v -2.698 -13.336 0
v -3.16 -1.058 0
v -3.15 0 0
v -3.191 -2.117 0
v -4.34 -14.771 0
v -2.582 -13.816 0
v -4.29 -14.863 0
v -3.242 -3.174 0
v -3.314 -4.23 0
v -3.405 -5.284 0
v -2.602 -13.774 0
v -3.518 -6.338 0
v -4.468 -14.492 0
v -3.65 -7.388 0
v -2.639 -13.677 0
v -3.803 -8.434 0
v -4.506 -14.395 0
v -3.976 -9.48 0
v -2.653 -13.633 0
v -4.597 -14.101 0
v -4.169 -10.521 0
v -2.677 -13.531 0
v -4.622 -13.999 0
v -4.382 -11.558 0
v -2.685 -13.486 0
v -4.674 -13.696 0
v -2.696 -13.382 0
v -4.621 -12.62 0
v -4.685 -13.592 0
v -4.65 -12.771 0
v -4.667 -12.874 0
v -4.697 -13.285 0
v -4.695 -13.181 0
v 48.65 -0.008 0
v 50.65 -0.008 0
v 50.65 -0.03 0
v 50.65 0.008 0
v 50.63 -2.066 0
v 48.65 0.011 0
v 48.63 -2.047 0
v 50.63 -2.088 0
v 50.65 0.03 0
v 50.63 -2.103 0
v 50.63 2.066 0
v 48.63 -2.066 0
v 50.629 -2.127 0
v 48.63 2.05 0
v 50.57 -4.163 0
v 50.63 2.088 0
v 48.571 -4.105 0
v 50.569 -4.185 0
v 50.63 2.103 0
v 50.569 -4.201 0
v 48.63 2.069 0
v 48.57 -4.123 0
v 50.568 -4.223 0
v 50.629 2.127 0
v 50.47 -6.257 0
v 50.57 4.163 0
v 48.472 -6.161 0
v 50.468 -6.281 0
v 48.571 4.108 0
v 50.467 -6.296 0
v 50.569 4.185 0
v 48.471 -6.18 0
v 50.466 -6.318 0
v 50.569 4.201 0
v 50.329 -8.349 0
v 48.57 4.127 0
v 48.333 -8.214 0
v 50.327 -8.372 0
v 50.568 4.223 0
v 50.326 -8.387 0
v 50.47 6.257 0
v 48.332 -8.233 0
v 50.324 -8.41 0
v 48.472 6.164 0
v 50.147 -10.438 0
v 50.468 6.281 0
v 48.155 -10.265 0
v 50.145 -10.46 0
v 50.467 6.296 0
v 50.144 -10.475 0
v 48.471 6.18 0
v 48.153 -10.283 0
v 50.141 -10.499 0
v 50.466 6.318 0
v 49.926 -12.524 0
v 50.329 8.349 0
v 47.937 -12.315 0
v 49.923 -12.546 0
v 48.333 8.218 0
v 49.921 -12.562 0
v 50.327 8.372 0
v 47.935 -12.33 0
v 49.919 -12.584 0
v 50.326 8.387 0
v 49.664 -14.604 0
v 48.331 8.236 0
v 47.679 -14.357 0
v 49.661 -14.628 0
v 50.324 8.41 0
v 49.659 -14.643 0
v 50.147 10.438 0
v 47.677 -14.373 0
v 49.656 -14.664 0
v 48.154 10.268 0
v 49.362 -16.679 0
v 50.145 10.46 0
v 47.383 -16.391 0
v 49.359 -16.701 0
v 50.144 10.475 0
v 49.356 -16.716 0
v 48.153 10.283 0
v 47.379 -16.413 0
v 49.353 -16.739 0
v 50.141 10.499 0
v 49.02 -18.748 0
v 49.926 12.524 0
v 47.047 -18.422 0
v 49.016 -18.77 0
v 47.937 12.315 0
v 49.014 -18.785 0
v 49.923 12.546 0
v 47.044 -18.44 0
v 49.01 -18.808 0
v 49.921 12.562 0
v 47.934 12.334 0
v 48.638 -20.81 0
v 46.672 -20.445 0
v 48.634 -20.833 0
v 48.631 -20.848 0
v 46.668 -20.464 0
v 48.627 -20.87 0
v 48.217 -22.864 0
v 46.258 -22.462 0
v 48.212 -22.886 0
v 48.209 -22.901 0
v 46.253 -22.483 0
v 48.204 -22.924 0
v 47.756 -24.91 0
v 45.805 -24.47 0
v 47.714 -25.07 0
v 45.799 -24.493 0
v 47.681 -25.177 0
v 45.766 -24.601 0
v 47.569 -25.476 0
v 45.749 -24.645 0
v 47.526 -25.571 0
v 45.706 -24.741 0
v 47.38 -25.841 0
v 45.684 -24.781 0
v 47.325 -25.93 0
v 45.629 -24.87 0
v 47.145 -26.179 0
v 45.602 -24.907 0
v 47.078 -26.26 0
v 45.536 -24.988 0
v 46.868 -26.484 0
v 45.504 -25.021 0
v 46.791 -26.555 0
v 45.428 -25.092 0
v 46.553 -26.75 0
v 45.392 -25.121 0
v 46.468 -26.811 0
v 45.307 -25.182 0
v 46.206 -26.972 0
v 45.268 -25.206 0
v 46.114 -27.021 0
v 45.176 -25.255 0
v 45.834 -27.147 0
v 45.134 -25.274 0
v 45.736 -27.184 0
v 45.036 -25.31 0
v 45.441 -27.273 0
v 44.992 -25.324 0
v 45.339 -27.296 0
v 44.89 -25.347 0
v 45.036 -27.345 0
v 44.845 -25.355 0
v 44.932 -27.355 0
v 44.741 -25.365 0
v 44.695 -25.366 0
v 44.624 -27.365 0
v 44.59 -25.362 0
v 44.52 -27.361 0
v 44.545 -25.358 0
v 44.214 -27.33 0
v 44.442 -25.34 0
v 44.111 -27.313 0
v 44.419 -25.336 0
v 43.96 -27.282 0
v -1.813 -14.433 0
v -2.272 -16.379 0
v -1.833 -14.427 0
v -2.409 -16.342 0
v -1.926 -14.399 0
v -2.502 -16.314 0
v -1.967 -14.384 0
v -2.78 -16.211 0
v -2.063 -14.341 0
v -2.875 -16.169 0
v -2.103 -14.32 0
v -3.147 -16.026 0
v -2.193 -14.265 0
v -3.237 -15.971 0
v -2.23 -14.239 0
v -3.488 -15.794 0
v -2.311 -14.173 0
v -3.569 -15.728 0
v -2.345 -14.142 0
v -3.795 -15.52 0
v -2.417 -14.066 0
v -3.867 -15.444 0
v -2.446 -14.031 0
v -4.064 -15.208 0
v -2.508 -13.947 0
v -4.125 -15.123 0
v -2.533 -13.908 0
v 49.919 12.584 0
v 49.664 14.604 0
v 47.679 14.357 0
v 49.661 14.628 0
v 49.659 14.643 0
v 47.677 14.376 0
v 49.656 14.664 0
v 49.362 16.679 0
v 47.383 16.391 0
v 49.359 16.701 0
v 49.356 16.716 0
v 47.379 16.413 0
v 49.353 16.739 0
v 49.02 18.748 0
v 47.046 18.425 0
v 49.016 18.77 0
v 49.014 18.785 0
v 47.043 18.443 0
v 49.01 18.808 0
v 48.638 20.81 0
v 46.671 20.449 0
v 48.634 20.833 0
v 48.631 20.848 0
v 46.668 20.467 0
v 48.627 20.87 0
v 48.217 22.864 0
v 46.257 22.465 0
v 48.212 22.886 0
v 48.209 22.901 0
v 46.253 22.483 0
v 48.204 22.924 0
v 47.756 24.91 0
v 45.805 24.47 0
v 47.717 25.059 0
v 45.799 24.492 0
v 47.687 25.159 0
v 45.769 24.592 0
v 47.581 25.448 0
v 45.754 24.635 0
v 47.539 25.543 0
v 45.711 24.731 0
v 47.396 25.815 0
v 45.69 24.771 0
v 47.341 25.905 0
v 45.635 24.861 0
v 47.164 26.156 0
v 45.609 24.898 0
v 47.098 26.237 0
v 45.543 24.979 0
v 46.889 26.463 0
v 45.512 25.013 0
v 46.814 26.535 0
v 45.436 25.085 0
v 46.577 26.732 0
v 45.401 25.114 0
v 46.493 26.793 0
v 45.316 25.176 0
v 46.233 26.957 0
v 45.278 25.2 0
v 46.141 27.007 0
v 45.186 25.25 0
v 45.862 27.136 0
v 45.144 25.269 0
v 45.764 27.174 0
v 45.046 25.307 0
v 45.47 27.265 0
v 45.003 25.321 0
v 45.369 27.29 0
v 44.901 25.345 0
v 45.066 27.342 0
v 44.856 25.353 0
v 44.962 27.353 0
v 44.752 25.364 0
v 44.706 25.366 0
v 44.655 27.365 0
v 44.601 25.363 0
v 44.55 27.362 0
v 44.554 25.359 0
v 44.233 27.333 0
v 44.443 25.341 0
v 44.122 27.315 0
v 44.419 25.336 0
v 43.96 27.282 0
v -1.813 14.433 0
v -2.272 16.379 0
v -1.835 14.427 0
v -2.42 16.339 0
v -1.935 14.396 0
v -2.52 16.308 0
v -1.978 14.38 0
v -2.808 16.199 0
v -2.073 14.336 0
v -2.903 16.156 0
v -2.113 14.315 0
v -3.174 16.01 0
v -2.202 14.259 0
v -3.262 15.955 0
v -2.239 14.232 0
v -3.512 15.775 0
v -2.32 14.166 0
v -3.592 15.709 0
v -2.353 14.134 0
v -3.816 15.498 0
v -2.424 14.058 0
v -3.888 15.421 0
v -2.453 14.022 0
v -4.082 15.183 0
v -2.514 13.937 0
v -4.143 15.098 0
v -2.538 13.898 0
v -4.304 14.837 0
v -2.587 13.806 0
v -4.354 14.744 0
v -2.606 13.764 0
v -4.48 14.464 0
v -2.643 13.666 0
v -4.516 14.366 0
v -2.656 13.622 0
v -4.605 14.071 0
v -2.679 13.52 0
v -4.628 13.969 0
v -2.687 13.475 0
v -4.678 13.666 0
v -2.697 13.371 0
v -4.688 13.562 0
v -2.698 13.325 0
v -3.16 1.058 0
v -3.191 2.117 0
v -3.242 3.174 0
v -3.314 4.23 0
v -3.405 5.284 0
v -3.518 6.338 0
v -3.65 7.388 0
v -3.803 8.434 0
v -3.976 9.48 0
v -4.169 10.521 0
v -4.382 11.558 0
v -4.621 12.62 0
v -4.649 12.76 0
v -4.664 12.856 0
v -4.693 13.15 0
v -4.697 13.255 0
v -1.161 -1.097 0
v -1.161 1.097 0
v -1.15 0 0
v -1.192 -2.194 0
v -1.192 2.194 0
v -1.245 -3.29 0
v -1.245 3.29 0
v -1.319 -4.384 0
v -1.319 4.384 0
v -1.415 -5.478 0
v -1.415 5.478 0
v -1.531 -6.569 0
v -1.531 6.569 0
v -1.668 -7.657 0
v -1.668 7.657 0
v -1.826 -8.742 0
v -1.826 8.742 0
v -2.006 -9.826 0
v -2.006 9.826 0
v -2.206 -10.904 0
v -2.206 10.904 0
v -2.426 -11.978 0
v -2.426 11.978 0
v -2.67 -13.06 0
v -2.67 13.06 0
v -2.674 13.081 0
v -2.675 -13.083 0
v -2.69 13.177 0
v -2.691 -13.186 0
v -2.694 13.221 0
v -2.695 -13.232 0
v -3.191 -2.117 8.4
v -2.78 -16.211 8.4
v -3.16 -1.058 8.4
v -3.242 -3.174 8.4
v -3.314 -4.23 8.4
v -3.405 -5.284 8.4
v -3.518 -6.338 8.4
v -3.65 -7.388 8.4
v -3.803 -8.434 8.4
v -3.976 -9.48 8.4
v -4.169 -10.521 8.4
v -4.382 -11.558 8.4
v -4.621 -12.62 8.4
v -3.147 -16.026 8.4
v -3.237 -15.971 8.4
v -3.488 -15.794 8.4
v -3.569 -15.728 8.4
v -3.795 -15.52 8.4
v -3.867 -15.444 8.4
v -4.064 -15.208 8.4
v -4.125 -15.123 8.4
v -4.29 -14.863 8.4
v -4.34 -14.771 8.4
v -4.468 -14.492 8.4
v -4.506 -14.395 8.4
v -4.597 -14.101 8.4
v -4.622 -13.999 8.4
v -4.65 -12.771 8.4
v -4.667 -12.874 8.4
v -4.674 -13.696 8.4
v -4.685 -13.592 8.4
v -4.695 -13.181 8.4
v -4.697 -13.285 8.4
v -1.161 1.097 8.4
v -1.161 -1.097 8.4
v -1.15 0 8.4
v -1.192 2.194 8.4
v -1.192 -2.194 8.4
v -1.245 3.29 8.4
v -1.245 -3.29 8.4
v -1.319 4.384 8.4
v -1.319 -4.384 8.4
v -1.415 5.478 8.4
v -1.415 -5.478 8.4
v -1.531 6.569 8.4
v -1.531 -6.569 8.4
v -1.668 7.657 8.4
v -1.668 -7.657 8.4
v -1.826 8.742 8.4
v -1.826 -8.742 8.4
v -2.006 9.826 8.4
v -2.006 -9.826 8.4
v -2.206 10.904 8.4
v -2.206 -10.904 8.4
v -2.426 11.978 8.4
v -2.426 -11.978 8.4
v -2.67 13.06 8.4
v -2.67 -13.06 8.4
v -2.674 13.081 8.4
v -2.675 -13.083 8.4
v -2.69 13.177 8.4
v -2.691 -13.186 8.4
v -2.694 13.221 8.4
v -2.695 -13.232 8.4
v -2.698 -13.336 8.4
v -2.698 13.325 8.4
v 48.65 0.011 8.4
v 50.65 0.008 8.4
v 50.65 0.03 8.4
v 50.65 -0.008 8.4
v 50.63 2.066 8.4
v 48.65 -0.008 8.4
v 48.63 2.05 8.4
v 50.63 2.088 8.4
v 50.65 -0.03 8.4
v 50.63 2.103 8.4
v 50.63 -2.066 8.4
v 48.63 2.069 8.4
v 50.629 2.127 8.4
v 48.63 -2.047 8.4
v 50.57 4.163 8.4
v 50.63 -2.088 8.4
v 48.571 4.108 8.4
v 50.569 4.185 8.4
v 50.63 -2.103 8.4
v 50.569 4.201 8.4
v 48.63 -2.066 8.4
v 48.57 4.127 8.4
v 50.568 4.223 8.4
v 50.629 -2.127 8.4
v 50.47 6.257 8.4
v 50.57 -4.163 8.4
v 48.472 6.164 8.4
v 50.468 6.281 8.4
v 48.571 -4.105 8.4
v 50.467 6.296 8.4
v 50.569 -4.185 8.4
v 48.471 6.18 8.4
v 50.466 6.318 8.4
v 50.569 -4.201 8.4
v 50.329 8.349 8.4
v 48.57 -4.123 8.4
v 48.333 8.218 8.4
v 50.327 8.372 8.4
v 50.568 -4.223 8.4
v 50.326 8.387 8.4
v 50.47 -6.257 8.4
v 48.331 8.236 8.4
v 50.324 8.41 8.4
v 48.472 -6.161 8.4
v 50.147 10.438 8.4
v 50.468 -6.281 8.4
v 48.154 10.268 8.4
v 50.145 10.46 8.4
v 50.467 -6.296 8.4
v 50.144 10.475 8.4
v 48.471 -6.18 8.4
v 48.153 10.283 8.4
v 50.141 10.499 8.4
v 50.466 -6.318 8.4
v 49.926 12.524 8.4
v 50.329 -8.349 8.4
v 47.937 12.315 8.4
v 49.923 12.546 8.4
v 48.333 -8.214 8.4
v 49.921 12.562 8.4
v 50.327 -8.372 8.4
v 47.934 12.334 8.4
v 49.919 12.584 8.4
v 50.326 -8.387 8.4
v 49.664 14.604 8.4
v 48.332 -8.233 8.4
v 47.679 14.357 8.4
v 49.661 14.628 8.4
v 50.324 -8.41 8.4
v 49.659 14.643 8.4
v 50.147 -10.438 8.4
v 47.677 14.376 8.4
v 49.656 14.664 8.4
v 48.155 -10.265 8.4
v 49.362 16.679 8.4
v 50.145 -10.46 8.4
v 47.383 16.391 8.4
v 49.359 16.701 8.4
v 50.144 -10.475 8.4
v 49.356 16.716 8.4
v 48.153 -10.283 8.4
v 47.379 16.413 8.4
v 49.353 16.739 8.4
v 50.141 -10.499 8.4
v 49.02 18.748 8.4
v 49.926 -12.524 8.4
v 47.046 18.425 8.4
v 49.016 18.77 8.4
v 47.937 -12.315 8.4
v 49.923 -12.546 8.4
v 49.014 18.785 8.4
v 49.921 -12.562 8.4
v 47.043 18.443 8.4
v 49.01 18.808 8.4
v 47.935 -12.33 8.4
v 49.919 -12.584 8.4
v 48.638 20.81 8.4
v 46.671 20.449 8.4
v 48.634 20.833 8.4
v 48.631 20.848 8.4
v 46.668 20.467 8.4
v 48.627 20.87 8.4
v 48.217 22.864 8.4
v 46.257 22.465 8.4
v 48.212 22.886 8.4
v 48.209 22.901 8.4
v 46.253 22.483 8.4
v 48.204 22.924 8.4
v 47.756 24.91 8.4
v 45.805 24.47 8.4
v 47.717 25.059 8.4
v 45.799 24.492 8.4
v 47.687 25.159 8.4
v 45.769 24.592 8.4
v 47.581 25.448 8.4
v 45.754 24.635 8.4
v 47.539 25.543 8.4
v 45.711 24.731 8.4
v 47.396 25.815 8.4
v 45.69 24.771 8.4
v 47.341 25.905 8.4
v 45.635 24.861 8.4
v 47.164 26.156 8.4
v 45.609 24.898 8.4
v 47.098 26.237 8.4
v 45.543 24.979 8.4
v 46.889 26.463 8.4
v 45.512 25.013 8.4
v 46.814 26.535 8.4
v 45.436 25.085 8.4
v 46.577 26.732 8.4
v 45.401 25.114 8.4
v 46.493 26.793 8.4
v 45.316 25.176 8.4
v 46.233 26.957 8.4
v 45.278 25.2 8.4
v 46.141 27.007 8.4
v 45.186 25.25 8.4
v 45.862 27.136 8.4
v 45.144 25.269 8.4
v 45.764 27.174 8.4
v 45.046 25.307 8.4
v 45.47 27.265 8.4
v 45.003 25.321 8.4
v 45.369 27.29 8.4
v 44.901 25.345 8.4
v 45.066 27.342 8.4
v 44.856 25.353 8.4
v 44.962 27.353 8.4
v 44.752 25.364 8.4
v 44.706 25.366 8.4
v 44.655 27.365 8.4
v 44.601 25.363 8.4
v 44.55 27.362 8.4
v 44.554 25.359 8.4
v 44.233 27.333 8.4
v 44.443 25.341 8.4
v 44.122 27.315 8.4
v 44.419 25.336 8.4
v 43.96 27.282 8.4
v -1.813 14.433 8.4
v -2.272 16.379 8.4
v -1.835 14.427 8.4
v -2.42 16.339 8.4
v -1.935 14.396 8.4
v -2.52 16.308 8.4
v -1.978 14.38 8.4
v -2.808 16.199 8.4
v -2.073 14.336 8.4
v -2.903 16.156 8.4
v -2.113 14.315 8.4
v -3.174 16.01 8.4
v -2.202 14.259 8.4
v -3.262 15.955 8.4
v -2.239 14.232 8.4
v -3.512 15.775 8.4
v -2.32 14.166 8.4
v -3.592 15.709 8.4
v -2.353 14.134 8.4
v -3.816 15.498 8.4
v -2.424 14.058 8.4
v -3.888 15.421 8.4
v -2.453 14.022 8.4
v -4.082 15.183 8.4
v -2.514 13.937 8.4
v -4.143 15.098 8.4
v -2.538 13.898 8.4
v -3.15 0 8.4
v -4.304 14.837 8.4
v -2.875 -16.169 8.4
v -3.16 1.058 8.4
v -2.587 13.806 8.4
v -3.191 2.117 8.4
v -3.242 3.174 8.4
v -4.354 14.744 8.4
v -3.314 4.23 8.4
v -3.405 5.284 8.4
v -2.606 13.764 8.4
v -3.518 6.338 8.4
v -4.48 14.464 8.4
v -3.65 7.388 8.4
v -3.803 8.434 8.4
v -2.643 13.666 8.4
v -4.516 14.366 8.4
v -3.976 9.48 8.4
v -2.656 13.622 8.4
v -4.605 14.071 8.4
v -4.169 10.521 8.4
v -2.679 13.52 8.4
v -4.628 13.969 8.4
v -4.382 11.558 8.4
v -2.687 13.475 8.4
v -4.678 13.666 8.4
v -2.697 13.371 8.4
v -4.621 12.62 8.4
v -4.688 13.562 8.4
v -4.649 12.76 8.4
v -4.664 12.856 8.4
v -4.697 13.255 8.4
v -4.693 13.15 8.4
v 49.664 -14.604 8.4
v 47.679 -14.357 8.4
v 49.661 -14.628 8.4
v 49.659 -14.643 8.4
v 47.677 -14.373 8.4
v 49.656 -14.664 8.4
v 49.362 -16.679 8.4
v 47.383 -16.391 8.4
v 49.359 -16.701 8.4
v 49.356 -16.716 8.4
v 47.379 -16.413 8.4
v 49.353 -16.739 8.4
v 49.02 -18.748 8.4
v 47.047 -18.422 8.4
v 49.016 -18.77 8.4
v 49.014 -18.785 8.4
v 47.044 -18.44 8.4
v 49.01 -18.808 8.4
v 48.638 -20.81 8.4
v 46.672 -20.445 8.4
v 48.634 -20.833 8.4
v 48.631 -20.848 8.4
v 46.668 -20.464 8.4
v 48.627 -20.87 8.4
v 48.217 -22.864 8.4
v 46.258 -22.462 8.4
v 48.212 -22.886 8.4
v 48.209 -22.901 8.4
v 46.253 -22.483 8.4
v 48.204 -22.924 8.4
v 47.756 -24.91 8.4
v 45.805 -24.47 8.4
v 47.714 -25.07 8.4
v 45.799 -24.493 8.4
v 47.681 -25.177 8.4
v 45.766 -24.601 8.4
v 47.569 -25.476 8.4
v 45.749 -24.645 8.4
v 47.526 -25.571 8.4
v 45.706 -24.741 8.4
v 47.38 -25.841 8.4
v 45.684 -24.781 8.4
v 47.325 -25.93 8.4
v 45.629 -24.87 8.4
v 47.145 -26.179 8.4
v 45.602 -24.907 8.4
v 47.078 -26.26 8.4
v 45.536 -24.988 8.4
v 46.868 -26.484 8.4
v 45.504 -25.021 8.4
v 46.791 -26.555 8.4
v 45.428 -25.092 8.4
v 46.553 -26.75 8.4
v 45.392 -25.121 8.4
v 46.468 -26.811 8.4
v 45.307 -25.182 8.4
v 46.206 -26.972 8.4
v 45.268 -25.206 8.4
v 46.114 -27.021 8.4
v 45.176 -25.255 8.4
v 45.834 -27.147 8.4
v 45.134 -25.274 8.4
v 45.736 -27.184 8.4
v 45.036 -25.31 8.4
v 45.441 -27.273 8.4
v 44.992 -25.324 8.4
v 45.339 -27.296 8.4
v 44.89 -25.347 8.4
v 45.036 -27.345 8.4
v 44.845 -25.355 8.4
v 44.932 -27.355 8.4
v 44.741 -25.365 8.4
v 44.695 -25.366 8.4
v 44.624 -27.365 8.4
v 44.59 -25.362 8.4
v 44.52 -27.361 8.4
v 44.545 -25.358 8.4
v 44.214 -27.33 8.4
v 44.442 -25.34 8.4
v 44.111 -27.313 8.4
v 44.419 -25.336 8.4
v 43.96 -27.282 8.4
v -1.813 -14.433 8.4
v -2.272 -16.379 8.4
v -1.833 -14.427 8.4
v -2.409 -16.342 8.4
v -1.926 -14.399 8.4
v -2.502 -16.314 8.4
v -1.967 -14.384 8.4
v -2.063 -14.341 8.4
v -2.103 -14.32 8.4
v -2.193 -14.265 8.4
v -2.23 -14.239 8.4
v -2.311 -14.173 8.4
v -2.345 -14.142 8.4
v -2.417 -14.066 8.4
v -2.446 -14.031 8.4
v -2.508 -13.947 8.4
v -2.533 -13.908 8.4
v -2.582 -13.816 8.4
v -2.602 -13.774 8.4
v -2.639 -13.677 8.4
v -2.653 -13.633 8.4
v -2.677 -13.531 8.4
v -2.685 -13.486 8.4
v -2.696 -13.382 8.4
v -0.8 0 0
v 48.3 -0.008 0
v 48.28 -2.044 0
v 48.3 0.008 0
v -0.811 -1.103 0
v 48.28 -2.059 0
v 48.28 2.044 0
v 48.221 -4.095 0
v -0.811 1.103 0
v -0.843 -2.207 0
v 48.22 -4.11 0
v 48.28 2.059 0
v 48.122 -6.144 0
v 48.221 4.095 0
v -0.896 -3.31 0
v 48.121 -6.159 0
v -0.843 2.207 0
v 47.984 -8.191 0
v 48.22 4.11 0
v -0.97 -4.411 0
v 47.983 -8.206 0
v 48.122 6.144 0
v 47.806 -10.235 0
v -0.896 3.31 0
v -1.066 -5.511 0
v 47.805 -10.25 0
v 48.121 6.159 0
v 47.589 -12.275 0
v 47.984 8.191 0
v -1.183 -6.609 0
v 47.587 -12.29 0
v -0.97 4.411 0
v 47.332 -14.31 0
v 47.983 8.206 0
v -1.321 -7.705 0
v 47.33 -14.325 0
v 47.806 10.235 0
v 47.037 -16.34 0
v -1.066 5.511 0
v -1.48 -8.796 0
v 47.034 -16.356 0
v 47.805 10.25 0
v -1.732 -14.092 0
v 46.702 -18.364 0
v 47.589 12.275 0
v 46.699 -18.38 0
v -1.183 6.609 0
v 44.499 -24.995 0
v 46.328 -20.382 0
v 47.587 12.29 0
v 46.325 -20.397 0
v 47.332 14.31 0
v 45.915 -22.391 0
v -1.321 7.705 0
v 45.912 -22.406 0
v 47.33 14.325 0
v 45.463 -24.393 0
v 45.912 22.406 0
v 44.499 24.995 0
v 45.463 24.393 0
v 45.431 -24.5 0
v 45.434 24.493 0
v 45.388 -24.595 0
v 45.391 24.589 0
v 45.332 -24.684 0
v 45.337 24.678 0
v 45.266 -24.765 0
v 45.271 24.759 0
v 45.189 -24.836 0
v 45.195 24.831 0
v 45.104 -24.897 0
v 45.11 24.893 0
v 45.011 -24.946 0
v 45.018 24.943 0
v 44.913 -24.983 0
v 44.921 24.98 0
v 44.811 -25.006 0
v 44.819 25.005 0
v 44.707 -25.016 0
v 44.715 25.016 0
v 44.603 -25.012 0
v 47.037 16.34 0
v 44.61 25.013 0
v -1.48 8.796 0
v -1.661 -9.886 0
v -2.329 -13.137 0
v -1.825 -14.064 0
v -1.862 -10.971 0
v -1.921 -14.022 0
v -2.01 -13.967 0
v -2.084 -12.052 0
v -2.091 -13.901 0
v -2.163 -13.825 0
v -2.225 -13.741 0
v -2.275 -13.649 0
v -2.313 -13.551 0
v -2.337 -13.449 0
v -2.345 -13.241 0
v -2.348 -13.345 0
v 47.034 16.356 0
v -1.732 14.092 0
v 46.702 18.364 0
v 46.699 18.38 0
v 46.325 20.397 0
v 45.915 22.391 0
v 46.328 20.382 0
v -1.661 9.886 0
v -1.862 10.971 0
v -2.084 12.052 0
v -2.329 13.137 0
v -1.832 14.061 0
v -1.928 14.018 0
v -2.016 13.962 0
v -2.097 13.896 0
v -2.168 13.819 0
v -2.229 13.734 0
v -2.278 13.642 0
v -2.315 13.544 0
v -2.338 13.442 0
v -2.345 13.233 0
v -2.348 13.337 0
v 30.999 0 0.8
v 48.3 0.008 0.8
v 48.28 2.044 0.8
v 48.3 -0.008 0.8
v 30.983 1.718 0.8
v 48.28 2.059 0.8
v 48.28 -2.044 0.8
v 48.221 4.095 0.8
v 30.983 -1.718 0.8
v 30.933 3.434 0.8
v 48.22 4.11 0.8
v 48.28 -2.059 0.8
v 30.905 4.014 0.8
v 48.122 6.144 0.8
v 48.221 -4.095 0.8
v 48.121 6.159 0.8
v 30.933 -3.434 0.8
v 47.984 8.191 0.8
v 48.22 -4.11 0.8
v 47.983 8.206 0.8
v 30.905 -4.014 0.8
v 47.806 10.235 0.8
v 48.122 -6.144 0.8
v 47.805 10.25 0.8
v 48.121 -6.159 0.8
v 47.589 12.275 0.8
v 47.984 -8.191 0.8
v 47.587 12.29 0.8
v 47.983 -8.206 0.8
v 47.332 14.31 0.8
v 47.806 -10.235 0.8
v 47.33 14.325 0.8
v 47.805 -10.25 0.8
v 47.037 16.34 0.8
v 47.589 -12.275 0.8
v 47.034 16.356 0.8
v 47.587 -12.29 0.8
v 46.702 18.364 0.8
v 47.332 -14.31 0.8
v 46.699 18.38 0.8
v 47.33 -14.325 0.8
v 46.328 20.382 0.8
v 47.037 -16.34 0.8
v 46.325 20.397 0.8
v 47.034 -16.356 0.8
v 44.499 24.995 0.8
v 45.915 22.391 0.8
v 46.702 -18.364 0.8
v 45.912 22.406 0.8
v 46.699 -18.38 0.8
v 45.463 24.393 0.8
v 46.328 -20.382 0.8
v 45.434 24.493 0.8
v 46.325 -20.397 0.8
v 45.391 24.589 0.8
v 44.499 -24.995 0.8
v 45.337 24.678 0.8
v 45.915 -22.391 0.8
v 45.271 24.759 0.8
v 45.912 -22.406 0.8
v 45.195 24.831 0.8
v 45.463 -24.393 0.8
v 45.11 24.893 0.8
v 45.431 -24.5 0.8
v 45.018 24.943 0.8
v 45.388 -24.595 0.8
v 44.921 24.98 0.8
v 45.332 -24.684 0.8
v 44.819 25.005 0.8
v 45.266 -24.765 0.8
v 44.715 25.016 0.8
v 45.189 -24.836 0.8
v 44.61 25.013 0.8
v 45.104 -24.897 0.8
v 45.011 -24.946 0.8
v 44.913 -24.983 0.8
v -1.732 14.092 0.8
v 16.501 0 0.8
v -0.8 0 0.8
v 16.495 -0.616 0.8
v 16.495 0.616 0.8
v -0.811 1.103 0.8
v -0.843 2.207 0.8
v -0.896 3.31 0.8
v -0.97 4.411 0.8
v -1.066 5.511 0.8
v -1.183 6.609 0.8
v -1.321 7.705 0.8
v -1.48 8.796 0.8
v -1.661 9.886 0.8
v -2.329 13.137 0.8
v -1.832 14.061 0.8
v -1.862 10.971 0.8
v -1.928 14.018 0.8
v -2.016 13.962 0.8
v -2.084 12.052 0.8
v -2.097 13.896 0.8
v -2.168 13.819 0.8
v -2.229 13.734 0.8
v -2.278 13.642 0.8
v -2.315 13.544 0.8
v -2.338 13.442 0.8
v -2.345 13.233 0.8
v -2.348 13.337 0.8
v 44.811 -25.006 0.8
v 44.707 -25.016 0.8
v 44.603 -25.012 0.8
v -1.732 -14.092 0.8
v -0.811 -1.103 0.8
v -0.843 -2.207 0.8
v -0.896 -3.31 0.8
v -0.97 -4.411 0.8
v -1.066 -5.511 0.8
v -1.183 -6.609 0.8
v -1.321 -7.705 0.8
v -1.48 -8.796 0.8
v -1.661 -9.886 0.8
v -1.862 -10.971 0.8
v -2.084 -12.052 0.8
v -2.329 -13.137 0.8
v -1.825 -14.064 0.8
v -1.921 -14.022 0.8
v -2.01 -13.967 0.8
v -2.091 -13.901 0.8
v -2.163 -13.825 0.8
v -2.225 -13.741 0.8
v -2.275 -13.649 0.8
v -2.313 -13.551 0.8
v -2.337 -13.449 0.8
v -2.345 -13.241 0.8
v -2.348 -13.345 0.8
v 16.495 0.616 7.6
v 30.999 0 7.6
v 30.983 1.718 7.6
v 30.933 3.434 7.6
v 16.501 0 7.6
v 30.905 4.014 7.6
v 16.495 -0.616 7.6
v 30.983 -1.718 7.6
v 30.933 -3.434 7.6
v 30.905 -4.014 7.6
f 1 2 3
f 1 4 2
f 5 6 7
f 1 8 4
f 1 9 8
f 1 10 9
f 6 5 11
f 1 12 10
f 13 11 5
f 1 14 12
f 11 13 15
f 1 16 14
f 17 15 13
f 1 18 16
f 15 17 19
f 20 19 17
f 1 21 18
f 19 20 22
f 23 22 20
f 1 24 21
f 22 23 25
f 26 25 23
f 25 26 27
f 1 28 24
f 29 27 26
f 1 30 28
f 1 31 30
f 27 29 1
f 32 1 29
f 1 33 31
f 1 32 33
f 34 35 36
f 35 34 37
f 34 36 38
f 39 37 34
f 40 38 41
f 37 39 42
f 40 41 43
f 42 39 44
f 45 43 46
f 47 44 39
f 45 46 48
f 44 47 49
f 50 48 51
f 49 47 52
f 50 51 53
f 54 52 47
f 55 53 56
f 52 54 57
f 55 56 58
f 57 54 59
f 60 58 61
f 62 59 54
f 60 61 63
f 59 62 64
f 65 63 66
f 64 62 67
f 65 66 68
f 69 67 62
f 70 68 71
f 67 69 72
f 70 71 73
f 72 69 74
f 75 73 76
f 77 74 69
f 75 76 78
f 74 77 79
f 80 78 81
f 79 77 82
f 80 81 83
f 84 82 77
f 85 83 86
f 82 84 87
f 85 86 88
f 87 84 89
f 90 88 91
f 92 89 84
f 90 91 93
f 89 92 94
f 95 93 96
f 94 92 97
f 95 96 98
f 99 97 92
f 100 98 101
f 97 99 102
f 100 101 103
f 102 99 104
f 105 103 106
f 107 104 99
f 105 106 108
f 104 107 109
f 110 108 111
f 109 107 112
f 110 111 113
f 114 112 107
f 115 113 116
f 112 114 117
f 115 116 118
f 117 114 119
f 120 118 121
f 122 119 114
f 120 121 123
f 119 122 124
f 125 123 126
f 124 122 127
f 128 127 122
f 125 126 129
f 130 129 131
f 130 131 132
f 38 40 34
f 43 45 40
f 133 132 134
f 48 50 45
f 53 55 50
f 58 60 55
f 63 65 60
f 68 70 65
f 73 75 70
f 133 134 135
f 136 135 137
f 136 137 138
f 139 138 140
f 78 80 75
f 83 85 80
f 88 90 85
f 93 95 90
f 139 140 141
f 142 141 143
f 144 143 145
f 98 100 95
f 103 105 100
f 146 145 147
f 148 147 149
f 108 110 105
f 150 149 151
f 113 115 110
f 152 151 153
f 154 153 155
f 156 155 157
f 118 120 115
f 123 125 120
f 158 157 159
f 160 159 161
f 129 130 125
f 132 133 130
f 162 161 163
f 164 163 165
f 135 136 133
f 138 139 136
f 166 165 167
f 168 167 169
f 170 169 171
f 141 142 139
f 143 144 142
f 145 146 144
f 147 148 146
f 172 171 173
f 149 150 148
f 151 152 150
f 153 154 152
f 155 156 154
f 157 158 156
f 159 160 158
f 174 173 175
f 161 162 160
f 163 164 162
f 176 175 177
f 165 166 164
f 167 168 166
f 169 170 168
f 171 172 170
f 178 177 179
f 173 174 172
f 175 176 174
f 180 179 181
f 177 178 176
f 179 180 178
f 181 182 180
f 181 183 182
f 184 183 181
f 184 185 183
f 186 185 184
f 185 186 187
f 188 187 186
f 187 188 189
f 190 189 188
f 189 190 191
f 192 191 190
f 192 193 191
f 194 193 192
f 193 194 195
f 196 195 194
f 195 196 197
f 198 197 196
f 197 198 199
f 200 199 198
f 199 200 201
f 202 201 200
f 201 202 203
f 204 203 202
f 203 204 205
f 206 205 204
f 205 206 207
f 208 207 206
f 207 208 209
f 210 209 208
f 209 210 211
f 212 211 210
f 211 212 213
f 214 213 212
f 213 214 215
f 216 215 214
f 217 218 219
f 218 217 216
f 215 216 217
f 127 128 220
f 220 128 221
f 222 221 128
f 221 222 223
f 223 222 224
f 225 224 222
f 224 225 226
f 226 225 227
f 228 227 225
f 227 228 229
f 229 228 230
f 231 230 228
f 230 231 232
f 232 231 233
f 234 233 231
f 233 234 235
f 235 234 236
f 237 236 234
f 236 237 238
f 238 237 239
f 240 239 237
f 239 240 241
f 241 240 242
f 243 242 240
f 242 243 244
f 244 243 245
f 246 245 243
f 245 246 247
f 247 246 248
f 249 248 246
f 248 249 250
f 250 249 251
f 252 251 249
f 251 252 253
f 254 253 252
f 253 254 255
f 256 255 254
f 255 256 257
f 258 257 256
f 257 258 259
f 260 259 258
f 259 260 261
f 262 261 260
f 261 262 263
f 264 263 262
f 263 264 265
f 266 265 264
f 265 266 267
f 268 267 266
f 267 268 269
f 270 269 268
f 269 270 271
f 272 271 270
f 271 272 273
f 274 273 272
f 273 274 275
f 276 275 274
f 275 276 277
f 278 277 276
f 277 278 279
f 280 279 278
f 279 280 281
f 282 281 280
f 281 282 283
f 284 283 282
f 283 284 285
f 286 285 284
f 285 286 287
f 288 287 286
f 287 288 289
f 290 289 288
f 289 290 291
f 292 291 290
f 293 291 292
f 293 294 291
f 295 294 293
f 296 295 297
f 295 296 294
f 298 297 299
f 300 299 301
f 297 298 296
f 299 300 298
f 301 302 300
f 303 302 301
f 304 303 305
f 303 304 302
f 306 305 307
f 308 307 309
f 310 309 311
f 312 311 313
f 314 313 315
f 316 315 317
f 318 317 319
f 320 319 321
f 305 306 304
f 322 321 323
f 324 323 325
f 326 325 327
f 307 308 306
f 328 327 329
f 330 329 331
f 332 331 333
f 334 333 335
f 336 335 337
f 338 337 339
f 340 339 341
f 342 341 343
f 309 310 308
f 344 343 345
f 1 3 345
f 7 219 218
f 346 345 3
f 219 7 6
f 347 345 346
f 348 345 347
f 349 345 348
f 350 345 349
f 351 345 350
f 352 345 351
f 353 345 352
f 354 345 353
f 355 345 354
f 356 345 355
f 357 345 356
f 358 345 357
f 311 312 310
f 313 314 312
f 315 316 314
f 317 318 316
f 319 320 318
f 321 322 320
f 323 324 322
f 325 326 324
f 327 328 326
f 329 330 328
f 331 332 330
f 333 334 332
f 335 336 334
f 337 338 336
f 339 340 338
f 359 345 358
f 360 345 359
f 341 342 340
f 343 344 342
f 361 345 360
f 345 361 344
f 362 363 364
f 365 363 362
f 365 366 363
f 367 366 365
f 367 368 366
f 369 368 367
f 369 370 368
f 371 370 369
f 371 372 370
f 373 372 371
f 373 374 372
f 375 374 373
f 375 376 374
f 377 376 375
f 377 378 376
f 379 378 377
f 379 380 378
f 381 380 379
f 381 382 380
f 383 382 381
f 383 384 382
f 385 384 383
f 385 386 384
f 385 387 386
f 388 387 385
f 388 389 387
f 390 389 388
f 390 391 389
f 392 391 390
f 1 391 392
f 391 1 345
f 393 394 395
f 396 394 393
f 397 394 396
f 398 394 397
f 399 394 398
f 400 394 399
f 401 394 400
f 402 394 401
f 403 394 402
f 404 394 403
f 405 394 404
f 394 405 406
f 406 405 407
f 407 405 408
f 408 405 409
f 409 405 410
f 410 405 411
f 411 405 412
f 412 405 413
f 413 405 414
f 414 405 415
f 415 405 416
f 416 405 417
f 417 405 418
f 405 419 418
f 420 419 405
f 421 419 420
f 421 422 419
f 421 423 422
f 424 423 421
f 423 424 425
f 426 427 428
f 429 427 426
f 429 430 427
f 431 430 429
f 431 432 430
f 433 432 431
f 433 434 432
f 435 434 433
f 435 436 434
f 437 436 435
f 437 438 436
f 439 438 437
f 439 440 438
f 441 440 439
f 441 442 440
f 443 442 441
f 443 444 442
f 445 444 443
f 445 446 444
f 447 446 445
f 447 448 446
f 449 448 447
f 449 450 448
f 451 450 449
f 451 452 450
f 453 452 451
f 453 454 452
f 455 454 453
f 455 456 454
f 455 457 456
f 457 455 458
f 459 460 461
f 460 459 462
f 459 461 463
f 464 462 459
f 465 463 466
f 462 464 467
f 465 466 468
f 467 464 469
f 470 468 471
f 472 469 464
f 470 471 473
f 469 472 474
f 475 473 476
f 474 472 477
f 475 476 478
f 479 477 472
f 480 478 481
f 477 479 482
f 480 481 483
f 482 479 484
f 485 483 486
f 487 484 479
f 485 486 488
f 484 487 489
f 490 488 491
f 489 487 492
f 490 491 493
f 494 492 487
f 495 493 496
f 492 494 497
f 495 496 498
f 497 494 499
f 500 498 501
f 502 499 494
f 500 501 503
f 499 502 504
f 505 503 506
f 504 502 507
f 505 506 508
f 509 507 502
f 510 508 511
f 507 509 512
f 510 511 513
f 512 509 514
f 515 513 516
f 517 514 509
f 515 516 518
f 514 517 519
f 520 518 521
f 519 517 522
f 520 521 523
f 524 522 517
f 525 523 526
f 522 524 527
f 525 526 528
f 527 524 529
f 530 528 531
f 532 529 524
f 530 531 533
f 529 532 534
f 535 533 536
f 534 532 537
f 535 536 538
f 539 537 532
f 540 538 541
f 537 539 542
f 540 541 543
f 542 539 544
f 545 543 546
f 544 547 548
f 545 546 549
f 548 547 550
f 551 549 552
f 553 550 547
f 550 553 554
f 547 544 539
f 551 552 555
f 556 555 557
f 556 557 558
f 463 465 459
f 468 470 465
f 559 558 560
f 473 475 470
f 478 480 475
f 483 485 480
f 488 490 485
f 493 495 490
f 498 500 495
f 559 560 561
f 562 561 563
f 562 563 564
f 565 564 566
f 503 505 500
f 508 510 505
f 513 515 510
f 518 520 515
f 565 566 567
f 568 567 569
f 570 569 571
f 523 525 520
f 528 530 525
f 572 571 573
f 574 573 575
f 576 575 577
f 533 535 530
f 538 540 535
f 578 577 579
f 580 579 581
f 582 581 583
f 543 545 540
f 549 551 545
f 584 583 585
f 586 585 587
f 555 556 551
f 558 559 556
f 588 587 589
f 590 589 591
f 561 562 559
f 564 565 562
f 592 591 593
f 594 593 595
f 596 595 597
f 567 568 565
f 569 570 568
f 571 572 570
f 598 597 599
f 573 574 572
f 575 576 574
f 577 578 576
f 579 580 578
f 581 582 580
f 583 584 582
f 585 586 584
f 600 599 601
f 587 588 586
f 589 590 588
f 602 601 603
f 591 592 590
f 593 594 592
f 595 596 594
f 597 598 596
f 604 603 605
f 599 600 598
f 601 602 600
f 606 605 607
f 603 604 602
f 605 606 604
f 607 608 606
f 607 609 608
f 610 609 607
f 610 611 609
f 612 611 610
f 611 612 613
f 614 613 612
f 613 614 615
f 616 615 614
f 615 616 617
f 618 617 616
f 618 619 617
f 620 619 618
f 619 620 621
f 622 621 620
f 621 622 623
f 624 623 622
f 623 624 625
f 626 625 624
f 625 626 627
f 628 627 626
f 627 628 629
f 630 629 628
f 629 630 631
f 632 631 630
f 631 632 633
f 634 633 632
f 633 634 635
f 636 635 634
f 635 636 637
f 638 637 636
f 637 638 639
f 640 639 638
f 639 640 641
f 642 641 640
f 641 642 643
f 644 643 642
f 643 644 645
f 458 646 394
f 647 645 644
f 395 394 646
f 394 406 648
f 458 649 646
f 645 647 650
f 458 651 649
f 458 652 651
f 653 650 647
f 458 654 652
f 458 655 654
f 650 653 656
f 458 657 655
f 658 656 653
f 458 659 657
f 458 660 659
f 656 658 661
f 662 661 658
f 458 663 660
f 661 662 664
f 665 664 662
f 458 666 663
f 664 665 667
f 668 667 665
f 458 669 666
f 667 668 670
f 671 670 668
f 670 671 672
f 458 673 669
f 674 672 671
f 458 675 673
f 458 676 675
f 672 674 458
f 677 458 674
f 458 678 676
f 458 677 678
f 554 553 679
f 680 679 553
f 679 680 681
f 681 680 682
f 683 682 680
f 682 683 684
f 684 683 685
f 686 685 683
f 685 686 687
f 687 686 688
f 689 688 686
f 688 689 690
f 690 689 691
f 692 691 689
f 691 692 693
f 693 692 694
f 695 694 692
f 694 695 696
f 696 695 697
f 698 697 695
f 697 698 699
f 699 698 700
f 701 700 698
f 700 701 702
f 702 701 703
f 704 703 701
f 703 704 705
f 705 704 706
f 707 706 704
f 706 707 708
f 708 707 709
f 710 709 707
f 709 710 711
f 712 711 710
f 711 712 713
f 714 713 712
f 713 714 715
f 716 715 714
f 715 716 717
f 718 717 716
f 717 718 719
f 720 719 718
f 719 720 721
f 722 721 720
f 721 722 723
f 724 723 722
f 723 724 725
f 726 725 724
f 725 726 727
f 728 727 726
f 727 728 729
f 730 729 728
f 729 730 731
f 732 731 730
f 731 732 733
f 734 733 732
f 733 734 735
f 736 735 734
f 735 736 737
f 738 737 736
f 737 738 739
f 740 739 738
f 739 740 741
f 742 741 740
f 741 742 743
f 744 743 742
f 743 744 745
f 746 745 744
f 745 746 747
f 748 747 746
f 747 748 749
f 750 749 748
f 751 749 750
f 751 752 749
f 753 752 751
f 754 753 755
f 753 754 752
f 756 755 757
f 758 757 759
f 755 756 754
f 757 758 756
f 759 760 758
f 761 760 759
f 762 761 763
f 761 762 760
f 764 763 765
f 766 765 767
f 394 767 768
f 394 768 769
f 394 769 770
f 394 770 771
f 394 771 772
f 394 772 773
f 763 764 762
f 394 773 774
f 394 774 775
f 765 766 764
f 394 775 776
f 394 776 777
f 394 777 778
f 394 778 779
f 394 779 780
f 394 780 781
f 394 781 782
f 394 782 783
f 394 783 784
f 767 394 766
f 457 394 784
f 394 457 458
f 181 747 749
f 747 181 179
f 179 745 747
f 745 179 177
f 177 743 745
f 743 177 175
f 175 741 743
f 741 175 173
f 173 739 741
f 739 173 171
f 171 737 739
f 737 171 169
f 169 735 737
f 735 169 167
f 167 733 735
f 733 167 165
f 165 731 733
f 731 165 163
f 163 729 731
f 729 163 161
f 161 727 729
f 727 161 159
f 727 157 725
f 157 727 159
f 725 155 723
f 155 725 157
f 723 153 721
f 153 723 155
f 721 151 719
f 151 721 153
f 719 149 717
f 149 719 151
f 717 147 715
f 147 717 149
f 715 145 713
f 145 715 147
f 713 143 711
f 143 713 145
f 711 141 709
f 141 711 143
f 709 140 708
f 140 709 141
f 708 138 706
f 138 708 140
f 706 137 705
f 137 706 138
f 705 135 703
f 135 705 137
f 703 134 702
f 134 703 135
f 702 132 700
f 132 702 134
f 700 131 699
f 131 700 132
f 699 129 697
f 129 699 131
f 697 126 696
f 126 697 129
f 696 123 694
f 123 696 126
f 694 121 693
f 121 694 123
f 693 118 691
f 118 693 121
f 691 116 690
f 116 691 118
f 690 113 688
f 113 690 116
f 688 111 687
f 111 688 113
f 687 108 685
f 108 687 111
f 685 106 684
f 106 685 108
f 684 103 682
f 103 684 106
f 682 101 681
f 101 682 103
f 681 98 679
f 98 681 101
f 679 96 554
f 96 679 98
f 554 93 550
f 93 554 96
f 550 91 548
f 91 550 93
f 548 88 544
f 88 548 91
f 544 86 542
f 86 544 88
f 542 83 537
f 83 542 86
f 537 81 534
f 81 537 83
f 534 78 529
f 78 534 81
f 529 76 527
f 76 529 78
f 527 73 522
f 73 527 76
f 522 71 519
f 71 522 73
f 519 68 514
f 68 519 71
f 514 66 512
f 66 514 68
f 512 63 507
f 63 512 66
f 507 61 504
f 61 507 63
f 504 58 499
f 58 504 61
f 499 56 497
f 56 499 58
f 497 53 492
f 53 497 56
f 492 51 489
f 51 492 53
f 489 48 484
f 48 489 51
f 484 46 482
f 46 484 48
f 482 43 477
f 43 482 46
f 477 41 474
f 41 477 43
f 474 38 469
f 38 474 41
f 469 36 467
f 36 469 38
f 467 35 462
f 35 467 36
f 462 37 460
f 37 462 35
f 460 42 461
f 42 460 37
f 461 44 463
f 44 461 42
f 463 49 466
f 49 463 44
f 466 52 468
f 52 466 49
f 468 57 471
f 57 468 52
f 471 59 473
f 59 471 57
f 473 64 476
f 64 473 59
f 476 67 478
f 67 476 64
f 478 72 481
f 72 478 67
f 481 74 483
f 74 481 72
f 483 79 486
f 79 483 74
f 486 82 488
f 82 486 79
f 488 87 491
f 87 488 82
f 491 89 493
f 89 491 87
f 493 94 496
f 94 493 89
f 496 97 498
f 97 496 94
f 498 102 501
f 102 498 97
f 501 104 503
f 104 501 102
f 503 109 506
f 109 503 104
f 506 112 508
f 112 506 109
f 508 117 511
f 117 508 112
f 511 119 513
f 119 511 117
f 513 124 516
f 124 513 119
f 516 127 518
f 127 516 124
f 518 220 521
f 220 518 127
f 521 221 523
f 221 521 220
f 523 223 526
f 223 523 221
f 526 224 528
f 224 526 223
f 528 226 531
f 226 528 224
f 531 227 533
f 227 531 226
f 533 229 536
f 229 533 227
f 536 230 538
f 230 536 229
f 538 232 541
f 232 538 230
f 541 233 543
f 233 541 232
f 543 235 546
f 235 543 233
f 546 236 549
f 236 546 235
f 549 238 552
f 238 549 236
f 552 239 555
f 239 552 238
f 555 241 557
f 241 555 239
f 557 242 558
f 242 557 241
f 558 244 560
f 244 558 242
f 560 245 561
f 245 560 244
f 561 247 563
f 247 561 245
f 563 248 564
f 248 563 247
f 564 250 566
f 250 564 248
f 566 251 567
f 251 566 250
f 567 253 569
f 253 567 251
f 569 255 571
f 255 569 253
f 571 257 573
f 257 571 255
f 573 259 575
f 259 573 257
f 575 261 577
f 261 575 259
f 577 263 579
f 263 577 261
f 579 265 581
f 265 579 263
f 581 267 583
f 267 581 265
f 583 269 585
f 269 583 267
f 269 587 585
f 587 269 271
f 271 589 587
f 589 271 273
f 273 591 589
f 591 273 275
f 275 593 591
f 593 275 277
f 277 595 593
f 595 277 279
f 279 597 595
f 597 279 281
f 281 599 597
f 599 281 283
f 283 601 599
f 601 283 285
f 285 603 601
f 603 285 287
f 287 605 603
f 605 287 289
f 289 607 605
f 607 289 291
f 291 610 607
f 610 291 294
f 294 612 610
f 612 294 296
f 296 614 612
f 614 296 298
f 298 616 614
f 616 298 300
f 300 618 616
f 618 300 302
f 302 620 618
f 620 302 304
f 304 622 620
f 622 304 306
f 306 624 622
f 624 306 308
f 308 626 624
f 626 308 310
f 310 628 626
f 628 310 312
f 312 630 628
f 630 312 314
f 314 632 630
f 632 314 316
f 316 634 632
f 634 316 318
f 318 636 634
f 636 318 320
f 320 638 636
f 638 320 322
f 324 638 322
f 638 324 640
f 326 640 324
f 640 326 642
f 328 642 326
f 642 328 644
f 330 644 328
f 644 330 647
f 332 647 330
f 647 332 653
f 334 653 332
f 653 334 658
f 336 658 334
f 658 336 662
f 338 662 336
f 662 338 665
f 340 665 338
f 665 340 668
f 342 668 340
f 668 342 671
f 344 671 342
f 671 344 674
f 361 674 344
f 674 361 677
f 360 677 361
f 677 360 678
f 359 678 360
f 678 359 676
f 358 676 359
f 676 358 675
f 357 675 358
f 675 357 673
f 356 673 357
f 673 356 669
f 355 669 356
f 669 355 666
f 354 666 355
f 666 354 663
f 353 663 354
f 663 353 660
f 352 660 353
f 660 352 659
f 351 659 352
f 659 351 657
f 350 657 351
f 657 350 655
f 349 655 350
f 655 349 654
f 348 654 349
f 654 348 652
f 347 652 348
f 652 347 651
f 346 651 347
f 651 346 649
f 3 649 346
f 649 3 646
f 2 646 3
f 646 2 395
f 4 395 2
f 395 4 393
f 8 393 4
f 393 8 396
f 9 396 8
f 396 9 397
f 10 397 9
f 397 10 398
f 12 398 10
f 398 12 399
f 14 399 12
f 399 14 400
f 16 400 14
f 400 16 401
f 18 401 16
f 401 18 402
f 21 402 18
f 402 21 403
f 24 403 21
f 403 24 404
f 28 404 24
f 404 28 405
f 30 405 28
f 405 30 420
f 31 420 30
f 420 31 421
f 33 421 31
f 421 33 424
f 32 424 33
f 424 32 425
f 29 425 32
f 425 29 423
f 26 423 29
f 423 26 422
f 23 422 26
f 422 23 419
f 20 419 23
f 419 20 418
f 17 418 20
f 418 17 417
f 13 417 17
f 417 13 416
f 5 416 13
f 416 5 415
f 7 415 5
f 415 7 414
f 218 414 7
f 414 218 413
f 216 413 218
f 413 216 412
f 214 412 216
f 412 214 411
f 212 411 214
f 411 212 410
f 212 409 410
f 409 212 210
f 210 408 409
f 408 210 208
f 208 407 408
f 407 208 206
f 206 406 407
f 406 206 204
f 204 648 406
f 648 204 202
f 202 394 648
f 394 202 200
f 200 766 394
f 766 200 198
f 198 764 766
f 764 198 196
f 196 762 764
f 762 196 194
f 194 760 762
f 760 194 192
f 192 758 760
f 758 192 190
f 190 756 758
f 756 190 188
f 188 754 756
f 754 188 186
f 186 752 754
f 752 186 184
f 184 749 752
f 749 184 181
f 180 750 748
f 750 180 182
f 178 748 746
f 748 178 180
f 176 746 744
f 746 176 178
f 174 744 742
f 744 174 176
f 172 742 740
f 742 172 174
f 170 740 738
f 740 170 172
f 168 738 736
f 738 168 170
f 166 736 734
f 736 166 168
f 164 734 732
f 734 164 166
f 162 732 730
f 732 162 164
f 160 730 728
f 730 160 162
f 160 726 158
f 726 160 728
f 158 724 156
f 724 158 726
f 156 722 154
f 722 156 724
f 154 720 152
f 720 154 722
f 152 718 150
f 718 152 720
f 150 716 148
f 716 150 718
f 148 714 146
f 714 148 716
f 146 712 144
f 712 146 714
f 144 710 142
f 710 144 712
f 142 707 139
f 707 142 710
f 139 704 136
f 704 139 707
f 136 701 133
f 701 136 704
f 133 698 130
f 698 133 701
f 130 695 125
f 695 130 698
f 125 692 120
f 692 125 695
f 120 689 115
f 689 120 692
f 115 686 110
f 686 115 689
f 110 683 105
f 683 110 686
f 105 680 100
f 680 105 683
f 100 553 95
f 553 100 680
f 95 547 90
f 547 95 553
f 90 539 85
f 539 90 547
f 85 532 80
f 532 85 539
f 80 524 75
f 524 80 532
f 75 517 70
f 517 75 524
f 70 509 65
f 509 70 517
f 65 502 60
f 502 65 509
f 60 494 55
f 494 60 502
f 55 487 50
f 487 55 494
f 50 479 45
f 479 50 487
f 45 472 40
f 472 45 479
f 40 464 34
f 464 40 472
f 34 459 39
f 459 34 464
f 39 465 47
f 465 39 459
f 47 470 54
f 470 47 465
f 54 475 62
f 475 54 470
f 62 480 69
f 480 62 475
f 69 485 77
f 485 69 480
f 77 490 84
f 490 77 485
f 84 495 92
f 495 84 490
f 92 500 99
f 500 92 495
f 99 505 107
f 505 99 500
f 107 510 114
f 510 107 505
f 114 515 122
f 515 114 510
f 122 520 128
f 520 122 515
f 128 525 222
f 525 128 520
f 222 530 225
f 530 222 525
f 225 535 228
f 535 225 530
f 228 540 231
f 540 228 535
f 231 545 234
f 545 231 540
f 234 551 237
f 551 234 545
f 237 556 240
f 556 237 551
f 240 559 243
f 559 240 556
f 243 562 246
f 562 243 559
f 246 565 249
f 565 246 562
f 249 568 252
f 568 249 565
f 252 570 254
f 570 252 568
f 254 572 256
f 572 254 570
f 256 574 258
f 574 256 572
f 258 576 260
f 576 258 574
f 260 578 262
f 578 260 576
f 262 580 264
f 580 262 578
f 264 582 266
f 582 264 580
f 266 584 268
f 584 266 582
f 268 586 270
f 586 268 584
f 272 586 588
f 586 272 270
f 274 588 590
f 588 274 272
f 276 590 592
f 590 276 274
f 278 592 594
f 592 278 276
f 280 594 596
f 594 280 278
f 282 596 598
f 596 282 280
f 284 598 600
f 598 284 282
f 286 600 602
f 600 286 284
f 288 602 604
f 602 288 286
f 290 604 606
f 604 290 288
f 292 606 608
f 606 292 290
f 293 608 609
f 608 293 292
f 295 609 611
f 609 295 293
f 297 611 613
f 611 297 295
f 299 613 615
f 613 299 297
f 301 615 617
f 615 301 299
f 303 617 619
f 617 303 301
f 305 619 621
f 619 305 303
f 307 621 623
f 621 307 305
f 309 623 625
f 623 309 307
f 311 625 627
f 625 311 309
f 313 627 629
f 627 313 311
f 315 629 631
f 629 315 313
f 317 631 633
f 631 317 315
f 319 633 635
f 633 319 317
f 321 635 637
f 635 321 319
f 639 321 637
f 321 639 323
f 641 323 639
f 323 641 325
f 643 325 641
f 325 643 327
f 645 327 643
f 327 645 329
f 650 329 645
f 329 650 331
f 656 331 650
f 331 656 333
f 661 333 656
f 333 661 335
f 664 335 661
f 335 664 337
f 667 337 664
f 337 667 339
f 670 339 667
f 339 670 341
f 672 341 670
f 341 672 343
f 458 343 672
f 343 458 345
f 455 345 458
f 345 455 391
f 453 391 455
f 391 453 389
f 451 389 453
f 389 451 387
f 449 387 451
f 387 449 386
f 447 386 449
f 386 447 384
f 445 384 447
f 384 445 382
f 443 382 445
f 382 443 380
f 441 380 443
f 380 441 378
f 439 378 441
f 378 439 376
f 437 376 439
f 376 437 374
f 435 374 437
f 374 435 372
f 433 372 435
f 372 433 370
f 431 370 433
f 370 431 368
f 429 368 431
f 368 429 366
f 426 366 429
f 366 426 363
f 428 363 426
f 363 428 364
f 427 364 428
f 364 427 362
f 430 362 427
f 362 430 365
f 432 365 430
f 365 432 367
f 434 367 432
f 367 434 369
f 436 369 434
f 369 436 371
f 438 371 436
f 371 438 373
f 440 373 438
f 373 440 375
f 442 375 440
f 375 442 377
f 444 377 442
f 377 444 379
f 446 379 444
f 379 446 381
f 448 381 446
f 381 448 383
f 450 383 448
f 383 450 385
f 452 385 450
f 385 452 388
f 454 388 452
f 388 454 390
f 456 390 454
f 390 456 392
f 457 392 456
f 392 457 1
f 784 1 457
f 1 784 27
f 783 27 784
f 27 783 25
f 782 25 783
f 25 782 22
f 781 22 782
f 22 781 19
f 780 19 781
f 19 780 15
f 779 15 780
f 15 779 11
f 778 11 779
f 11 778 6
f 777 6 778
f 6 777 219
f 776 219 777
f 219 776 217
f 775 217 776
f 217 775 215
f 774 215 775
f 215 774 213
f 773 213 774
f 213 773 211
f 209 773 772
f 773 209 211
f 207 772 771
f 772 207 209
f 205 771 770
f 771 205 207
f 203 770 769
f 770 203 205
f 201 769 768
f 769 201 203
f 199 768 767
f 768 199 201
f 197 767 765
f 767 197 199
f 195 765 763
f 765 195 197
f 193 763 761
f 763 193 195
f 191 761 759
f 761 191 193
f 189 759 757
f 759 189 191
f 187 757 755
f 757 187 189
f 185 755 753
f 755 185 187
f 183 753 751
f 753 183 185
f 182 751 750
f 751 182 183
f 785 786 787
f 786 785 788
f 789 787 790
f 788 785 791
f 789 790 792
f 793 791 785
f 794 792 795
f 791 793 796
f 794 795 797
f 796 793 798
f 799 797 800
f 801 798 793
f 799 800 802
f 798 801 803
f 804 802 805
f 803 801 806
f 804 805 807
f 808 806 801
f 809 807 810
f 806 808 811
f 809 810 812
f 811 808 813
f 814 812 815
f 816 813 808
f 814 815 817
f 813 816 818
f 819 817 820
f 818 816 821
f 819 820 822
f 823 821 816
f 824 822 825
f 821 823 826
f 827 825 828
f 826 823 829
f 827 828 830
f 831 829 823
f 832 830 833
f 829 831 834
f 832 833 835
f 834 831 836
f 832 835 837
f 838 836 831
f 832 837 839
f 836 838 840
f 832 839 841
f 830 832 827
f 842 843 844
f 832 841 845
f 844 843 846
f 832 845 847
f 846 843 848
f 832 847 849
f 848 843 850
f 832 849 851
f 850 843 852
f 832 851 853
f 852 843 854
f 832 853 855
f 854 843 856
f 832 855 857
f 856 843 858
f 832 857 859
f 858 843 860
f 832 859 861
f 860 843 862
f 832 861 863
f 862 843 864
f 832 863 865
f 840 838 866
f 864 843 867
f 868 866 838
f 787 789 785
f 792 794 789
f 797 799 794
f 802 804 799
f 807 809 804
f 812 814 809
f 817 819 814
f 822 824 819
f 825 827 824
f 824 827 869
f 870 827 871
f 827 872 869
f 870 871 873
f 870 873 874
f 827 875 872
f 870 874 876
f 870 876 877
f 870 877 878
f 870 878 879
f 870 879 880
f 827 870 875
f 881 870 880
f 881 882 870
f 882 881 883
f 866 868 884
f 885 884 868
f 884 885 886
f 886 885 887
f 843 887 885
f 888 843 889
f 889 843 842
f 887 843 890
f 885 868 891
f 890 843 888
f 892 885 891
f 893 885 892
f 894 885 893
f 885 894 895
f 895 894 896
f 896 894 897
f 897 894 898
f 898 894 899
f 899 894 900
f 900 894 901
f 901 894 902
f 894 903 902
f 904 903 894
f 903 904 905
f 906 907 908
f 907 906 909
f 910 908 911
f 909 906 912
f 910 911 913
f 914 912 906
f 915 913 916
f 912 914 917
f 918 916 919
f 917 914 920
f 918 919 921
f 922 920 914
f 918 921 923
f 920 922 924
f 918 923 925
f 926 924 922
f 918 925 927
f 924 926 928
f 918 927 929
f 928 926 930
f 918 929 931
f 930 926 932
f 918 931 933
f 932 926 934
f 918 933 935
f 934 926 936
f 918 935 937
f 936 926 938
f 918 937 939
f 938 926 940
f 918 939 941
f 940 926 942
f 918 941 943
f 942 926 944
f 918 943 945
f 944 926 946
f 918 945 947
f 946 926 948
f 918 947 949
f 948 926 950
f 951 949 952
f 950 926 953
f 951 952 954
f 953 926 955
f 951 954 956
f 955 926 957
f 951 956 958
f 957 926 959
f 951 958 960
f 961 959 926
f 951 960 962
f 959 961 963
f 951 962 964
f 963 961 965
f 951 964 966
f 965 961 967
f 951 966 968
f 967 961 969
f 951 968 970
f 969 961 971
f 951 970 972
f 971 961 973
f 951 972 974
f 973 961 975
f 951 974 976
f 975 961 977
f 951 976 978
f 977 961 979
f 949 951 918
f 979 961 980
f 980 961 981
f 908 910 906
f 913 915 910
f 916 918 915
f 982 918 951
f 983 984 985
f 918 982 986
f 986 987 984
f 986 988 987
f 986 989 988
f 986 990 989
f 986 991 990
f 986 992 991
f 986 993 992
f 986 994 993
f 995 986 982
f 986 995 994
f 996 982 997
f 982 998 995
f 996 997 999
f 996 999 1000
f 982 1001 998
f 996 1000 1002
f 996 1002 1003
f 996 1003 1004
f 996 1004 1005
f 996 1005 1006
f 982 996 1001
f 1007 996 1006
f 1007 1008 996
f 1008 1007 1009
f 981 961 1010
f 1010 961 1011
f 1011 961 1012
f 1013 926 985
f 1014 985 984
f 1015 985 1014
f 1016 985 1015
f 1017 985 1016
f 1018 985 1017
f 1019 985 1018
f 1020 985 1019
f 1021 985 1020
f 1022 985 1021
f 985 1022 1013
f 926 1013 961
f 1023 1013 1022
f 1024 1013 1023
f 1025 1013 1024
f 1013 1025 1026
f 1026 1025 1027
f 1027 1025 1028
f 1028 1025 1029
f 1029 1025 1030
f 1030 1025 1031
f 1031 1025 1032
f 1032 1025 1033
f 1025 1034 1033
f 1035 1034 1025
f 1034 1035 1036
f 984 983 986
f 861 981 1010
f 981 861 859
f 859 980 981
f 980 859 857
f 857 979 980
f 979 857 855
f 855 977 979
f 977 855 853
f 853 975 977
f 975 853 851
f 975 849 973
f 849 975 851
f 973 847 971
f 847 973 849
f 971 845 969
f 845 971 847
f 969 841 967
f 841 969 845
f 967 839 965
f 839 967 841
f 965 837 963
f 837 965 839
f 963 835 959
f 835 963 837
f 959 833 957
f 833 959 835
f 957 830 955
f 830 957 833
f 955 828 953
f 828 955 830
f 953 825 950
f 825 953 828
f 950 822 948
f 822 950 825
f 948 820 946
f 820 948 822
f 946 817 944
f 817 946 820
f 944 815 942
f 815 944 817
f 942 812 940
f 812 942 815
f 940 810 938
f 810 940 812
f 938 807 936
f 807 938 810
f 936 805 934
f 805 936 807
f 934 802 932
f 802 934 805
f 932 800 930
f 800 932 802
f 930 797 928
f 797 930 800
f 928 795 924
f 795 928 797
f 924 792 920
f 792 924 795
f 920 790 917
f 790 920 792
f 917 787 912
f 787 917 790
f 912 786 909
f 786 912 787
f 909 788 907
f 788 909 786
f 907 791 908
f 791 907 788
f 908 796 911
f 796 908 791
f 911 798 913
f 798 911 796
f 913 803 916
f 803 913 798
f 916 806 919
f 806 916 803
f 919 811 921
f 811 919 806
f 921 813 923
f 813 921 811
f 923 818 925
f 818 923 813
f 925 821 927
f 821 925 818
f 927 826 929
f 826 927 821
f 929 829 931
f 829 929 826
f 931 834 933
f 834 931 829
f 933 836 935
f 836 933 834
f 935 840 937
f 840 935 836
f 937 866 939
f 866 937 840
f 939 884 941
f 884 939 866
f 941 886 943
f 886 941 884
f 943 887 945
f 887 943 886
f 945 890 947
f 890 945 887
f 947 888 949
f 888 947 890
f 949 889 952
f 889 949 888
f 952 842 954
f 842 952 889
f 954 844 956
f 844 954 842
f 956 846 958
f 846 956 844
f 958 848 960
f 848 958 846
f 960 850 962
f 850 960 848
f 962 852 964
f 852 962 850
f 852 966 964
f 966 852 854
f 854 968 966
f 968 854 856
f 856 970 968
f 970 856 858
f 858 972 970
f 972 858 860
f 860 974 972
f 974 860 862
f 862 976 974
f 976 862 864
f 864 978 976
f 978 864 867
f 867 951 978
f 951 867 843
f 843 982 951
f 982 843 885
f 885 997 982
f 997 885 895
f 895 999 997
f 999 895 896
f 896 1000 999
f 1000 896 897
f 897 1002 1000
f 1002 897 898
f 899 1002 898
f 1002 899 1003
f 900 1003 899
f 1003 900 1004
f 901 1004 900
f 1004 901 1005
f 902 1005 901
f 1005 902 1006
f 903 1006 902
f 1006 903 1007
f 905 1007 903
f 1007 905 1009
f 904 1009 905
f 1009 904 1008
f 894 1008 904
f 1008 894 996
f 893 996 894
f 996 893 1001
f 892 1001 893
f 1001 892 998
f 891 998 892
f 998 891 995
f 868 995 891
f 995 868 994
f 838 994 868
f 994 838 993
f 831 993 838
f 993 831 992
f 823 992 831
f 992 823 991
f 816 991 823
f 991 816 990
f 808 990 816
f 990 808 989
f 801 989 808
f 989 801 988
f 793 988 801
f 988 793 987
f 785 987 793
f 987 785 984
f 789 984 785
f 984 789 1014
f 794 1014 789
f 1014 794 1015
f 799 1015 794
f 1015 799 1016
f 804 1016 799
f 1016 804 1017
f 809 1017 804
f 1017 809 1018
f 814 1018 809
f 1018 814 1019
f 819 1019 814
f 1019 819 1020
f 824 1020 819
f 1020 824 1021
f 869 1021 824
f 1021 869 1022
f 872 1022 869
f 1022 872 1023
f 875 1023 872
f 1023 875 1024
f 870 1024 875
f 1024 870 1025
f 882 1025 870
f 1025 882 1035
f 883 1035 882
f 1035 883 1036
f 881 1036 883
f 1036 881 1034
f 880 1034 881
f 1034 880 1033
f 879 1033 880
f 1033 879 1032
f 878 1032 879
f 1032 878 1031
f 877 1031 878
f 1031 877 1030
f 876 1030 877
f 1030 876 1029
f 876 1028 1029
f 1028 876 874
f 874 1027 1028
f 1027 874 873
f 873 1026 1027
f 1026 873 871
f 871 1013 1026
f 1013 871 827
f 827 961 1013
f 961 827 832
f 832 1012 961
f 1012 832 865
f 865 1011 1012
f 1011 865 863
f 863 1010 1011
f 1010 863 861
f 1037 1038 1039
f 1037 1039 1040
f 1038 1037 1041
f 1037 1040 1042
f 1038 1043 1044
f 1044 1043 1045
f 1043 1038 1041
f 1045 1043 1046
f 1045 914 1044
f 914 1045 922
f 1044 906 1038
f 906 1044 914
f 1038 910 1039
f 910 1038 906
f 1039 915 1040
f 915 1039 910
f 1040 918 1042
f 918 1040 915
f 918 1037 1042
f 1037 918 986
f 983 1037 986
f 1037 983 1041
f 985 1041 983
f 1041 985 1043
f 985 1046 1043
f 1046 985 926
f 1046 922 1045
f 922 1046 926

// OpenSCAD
// Gen-CT — fit coupon (bay part): O20/O5 THROUGH pockets at carrier thickness (test on a steel offcut), 608 seat,
// D-flat bore, gap shim, and one bobbin-bay slice (bobbin footprint + bay_clear) to test former fit.
include <parameters.scad>;
$fn = 48;
// D-flat keyed bore: flat faces +X (angle 0 = magnet pocket 0 = index notch)
module dflat_bore(h) {
    intersection() {
        cylinder(d=shaft_bore, h=h);
        translate([-shaft_bore, -shaft_bore, 0]) cube([shaft_bore + dflat_x, 2*shaft_bore, h]);
    }
}
module sector_2d(r_in, r_out, ang) {
    polygon([
        for (a = [-ang/2 : ang/24 : ang/2]) [r_in*cos(a), r_in*sin(a)],
        for (a = [ang/2 : -ang/24 : -ang/2]) [r_out*cos(a), r_out*sin(a)]
    ]);
}
module footprint_2d() { offset(r=wall) sector_2d(coil_id_r, coil_od_r, span_deg); }
module hub_2d()       { offset(delta=-coil_core_inset) sector_2d(coil_id_r, coil_od_r, span_deg); }

// bay slice at FULL stator thickness with one bobbin BASE printed IN PLACE inside it (bay_clear gap): this is the
// print-in-place test for the one-plate stator. After printing, the base must pop out with finger pressure; if it is fused,
// print coil_former.stl separately (print-packs/parts/) instead of using the in-place bases.
translate([-coil_id_r, 0, 0]) {
    difference() {
        linear_extrude(stator_thick) offset(r=bay_clear + 2) footprint_2d();
        translate([0, 0, -0.1]) linear_extrude(stator_thick + 0.2) offset(r=bay_clear) footprint_2d();
    }
    union() {
        linear_extrude(flange_t) footprint_2d();
        translate([0, 0, flange_t - 0.01]) linear_extrude(former_web + 0.01) hub_2d();
    }
}
